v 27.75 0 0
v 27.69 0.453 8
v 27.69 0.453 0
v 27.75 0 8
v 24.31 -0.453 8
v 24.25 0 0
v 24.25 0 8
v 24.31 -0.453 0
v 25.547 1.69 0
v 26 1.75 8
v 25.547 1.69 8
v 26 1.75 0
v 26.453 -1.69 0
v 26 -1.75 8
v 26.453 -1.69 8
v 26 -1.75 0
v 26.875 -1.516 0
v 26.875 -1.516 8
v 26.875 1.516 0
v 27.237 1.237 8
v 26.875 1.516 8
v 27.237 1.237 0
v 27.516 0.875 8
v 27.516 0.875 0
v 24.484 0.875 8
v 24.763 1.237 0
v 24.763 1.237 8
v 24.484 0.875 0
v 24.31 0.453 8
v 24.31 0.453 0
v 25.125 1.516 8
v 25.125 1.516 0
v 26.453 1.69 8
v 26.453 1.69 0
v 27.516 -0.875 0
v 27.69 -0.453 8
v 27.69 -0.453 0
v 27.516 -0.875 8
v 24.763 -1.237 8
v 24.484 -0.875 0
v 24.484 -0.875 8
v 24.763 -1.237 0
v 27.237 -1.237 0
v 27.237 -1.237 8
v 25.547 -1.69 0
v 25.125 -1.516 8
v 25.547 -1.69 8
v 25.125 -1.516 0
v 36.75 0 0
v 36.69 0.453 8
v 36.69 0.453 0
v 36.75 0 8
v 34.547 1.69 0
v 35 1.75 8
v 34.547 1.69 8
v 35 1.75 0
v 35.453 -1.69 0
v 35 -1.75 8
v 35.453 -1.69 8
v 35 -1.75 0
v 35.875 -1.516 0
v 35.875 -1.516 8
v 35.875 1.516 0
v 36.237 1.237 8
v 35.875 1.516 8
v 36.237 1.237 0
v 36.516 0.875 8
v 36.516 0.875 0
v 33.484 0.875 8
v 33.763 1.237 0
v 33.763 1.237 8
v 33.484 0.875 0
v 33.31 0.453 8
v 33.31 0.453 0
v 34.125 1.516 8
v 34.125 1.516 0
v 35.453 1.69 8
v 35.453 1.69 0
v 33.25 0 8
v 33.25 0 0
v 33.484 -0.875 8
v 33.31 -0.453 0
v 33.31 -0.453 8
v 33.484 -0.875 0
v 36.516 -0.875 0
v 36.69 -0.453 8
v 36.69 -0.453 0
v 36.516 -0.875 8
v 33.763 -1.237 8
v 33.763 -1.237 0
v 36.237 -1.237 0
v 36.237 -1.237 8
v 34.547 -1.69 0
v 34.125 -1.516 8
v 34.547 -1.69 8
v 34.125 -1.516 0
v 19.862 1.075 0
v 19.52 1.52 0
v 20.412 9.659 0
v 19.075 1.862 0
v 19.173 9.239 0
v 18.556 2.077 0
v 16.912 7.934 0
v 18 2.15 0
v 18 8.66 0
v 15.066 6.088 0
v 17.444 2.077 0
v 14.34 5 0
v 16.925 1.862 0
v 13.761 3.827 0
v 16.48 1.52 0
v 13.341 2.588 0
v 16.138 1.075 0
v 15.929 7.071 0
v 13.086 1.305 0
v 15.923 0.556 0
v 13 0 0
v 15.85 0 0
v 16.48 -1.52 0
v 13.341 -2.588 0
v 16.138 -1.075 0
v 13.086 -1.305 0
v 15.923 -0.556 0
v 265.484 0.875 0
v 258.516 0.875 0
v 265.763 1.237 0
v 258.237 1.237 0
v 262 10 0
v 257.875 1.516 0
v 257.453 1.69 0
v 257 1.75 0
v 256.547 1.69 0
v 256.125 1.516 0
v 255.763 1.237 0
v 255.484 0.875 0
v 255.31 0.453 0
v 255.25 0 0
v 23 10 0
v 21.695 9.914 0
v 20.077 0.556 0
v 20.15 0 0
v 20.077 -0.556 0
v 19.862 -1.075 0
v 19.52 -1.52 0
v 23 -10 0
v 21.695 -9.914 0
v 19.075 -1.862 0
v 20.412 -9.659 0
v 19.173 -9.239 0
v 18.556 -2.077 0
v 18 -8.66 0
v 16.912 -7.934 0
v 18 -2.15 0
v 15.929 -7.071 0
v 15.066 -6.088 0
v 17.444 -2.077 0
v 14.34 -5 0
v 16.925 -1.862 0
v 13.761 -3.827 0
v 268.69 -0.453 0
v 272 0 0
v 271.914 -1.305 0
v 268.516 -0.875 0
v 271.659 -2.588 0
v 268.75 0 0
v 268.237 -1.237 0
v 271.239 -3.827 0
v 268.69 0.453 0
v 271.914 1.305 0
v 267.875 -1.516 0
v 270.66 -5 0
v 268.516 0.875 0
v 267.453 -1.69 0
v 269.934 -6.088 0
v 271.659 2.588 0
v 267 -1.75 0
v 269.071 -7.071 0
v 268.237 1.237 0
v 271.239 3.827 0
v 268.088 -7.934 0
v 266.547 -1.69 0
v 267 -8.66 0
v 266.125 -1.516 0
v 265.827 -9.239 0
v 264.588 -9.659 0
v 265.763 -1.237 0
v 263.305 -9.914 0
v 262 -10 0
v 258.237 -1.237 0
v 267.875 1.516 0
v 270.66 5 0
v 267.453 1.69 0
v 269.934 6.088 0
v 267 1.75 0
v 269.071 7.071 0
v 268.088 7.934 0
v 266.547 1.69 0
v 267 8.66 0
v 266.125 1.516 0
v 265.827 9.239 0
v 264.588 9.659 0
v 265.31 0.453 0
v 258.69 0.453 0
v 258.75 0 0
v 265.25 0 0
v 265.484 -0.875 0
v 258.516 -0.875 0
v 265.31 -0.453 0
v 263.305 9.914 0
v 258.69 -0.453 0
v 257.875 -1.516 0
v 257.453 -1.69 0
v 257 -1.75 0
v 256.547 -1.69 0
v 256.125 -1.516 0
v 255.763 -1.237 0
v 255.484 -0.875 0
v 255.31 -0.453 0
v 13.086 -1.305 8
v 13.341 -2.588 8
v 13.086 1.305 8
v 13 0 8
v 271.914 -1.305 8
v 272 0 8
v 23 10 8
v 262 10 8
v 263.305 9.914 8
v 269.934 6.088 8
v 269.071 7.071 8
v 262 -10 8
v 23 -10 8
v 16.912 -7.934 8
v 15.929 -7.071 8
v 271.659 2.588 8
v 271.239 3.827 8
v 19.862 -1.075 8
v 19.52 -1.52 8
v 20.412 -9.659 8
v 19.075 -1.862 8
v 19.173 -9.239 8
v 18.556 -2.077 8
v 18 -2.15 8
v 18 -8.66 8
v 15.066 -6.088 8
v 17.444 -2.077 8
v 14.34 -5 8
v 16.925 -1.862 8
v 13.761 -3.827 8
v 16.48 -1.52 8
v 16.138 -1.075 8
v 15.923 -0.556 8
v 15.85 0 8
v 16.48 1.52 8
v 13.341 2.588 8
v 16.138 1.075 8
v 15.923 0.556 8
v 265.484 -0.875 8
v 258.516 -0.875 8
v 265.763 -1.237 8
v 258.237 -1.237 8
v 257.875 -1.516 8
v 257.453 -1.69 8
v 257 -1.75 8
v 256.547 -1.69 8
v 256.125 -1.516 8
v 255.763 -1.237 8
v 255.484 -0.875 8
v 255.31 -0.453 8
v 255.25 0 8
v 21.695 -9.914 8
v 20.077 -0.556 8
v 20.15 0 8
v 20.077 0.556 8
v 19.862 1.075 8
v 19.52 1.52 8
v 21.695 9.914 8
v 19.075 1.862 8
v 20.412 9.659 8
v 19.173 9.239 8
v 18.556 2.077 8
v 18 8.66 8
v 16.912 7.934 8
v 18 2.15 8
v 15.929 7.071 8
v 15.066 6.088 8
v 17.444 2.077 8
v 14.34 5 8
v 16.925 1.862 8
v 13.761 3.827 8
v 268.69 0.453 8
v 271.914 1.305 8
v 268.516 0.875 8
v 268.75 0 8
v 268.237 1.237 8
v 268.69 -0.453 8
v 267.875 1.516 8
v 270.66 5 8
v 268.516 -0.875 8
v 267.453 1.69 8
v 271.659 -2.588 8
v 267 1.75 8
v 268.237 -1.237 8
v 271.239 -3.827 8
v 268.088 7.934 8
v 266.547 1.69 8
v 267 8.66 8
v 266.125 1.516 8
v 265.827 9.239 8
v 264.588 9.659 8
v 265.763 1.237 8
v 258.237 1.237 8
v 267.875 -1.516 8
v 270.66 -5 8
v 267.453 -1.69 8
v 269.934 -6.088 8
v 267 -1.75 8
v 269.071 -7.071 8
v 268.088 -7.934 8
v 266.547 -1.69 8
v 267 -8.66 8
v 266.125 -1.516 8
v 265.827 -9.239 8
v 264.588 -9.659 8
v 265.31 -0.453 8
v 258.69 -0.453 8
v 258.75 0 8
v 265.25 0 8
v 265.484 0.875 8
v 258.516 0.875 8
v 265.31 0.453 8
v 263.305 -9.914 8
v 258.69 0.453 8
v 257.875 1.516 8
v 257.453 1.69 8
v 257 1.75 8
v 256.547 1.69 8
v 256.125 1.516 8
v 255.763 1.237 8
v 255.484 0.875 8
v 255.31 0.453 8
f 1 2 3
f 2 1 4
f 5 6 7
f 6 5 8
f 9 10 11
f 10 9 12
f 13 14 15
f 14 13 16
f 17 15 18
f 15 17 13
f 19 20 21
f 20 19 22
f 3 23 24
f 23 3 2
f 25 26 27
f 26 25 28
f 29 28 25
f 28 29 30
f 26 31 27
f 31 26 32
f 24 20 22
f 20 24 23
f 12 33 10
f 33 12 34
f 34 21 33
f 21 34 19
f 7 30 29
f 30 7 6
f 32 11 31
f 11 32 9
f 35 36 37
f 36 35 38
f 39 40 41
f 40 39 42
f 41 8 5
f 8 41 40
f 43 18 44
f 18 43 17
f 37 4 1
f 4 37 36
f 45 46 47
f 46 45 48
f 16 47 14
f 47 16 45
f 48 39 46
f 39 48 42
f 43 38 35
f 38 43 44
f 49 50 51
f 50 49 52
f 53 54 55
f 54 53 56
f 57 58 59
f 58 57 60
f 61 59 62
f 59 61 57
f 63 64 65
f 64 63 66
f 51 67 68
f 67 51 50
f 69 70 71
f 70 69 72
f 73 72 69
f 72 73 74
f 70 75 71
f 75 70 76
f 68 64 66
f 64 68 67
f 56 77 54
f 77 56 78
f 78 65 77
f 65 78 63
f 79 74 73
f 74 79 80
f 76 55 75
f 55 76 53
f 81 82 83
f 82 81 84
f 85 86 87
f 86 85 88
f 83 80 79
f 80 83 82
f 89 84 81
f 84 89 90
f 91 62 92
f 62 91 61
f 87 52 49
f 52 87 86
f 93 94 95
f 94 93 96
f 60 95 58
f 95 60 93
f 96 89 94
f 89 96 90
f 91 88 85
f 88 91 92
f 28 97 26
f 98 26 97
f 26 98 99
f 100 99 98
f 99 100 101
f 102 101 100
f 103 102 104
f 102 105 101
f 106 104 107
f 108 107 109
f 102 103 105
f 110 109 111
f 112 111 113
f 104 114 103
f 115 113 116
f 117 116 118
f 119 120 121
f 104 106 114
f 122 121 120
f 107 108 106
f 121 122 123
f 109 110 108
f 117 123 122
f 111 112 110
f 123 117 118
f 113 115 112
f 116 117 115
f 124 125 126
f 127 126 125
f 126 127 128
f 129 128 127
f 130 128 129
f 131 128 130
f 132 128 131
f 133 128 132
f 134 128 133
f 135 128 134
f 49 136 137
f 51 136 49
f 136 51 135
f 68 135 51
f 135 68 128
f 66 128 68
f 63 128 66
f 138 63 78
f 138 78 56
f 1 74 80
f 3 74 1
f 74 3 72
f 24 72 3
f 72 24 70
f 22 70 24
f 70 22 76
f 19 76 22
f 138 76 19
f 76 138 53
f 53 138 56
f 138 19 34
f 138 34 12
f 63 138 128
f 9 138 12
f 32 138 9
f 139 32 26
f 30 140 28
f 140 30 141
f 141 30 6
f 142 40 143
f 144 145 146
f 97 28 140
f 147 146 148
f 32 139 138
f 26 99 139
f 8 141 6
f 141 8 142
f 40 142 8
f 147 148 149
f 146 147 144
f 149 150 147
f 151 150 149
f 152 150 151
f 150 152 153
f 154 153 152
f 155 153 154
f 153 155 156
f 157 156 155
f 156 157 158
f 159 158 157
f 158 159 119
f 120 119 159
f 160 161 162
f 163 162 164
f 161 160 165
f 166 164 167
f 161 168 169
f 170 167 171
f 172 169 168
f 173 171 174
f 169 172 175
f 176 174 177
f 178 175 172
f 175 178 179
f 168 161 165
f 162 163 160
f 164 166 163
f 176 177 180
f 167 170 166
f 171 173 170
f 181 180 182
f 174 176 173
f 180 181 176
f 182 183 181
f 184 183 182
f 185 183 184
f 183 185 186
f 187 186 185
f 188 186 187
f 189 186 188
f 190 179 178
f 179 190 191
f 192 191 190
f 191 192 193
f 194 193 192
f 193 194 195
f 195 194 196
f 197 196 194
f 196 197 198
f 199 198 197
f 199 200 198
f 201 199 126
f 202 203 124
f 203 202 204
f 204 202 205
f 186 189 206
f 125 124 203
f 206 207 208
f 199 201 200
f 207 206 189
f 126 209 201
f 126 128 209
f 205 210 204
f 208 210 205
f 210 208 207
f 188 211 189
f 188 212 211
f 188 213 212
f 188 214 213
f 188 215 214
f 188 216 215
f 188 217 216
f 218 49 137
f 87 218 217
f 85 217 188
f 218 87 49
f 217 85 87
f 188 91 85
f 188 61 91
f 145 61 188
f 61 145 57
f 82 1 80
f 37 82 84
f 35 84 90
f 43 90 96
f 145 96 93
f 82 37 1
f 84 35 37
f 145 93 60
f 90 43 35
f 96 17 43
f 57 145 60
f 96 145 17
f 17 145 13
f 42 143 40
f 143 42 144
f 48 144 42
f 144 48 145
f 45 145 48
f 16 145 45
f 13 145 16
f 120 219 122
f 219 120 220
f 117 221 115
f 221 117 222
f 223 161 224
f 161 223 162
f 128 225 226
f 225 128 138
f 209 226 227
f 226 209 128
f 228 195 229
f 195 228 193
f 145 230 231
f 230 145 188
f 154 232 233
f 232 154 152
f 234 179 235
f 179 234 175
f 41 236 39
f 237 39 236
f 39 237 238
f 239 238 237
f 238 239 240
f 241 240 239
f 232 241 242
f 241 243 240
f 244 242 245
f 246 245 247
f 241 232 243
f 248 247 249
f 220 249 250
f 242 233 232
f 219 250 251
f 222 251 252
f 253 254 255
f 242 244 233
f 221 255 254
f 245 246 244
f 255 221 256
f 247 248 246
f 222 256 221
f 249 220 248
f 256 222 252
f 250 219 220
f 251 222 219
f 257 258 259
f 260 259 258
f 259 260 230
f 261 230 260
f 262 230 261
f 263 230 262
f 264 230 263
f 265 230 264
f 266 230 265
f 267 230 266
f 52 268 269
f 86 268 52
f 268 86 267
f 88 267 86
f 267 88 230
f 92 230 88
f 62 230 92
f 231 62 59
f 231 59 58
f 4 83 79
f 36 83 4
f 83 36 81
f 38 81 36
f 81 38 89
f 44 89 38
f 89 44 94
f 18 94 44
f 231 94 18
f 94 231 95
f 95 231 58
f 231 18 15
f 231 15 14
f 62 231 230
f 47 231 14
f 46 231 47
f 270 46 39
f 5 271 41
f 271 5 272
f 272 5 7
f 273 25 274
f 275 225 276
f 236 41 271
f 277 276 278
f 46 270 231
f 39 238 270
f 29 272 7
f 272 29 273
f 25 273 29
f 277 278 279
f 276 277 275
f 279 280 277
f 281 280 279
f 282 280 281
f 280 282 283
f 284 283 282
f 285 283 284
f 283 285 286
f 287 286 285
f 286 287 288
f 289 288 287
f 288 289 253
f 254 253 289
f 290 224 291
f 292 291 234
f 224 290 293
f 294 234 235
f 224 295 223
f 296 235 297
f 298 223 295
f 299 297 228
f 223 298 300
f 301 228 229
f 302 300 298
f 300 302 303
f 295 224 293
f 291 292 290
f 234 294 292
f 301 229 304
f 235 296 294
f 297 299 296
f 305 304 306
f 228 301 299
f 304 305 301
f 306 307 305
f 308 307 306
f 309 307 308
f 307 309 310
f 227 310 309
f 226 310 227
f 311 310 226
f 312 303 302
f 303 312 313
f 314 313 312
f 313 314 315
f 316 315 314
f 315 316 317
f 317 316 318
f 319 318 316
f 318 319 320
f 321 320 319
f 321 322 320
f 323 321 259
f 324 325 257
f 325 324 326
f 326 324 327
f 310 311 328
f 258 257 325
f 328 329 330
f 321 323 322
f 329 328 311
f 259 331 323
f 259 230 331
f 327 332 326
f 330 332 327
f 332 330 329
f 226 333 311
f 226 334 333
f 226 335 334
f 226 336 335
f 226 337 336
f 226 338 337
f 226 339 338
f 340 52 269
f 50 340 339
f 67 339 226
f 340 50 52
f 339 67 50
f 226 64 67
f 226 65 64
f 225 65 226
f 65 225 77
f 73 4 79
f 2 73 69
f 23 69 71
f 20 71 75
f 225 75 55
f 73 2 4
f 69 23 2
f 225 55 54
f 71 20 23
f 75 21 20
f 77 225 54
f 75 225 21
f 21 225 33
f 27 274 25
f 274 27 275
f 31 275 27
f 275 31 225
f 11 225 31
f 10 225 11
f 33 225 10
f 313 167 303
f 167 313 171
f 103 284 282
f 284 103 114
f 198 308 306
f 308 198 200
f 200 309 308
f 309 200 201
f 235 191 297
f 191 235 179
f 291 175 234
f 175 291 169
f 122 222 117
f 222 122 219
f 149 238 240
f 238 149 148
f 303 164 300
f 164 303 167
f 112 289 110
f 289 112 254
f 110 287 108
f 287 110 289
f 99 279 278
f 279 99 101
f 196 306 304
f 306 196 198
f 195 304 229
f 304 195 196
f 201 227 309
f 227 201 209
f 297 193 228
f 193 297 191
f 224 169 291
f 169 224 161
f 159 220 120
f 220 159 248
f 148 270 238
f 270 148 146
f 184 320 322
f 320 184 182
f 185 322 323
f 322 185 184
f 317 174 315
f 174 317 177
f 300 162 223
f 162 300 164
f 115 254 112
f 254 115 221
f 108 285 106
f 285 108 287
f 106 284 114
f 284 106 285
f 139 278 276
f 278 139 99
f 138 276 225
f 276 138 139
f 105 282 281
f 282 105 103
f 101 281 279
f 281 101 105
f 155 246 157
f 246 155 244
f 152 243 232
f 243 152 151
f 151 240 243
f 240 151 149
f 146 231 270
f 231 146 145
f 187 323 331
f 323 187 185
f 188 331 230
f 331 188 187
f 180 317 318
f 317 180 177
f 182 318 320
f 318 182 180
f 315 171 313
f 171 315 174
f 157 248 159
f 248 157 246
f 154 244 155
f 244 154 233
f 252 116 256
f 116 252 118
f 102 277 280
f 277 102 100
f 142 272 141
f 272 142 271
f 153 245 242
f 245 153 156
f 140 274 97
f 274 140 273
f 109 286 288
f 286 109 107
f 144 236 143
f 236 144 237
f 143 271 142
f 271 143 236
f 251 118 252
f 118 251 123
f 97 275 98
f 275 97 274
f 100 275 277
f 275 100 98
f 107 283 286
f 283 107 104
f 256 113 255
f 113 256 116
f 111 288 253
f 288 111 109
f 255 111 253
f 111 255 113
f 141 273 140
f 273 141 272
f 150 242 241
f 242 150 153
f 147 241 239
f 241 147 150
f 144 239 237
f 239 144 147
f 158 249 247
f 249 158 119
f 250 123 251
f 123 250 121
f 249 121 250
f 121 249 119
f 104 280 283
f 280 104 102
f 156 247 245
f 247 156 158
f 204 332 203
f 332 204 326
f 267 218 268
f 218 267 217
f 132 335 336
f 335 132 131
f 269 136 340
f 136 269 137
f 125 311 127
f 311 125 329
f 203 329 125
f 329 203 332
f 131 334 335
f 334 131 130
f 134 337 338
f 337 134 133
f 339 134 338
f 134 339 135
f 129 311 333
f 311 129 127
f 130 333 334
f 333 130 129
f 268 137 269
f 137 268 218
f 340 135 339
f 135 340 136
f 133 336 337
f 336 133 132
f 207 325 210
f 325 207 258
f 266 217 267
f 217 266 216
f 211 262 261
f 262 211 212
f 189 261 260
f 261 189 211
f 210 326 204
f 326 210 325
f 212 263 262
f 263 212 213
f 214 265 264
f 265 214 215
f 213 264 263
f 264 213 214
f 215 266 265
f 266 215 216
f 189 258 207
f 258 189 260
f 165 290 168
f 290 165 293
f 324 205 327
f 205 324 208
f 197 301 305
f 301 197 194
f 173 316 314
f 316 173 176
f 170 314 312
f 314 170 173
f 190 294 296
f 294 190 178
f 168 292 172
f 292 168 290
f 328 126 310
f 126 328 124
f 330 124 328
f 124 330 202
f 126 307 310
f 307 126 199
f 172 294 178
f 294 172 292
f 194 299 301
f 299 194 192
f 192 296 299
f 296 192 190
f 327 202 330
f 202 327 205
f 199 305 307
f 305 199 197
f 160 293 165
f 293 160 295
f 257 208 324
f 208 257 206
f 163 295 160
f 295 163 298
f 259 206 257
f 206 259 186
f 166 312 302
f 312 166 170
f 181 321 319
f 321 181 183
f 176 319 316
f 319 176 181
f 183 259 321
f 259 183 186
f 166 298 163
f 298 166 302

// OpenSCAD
// Gen-EE — TOP SPIDER ARM INNER HALF (2026-11-05). Print x3, flat. Hub end -> mid-span splice (20 mm lap, 2x M3).
include <parameters.scad>;
$fn = 48;
arm_r0 = 13.0;
arm_r1 = flange_bolt_r + 9.0;
arm_mid = (arm_r0 + arm_r1) / 2;
splice_lap = 20.0;
arm_ri1 = arm_mid + splice_lap / 2;
difference() {
    hull() {
        translate([arm_r0 + arm_w / 2, 0, 0]) cylinder(d=arm_w, h=arm_t);
        translate([arm_ri1 - arm_w / 2, 0, 0]) cylinder(d=arm_w, h=arm_t);
    }
    for (r = arm_bolt_r) translate([r, 0, -0.1]) cylinder(d=m3_clear, h=arm_t + 1, $fn=24);
    translate([brace_r, 0, -0.1]) cylinder(d=brace_d, h=arm_t + 1, $fn=24);
    translate([arm_mid - 5, 0, -0.1]) cylinder(d=m3_clear, h=arm_t + 1, $fn=24);
    translate([arm_mid + 5, 0, -0.1]) cylinder(d=m3_clear, h=arm_t + 1, $fn=24);
}
